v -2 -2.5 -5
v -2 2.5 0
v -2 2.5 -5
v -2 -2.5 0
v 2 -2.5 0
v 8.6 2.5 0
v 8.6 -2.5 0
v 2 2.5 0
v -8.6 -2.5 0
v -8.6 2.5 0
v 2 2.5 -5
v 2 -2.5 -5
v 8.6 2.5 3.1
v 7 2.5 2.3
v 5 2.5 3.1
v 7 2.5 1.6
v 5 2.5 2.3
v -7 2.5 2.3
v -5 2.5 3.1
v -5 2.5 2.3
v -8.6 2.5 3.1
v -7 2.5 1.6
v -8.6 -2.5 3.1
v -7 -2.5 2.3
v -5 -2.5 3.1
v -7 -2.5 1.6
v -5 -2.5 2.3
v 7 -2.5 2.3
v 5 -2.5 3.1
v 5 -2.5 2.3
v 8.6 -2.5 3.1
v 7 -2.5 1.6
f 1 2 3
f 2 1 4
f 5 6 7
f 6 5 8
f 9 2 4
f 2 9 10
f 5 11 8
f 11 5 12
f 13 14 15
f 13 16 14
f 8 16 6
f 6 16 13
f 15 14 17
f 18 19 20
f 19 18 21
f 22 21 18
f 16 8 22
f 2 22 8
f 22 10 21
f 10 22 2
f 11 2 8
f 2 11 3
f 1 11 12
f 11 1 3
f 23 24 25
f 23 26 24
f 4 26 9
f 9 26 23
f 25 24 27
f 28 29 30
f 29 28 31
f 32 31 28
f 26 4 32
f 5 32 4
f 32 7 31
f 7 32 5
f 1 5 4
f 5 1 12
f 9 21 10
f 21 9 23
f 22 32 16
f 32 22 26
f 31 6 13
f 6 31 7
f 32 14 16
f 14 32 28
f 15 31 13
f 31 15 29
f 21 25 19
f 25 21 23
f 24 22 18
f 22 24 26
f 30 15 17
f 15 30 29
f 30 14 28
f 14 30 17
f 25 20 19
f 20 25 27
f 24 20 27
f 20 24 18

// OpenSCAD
// --- Carrera Go LED Clip (Flach & Offen / Sichtfeld-Style) ---
// Alle Maße in Millimetern (mm). 
// Passt diese Werte an eure exakten Messungen an!

// --- PARAMETER ---
// 1. Der Pin für die Carrera-Schiene
slot_width = 4.0;      // Breite der Rille (Carrera Go ca. 3mm)
slot_depth = 5.0;      // Wie tief der Pin in die Rille ragt
clip_length = 5.0;     // Wie lang der Clip in Fahrtrichtung ist

// 2. Der LED-Streifen (Horizontal liegend)
strip_width_flat = 13.0; // Breite des flach liegenden Streifens (meist 10-12mm)
strip_thickness = 1.0;  // Dicke des Streifens inkl. Klebeband/Chips
// Diese Nase greift *nur* die alleräußerste Kante des Streifens!
snap_lip_width = 2;  // Wie weit die Nase nach innen ragt (sehr fein)

// 3. Stabilität & Toleranz
wall = 1.6;            // Wandstärke der Basisplatte (die auf der Fahrbahn liegt)
gap_clearance = 0.5;   // Minimaler Freiraum zum Streifen für Toleranz

// --- GENERATOR (Völlig neu konstruiert) ---
module led_clip_flat_sichtfeld() {
    union() {
        // 1. Der Pin (Steckt in der Bahn)
        // Zentriert um den Ursprung für Symmetrie
        translate([0, 0, -slot_depth/2])
            cube([slot_width, clip_length, slot_depth], center=true);
            
        // 2. Die flache Basis (Liegt auf der Fahrbahn auf)
        // Muss breiter sein als der Pin und der Streifen, um Stabilität zu geben
        translate([0, 0, wall/2])
            cube([strip_width_flat + 2*wall + 2*gap_clearance, clip_length, wall], center=true);
            
        // 3. Die sehr niedrigen Halterwände (knapp über Streifendicke)
        wall_height = strip_thickness + gap_clearance; // Etwas höher als Dicke für Halt
        
        // Rechte Wand
        translate([(strip_width_flat/2 + gap_clearance + wall/2), 0, wall + wall_height/2])
            cube([wall, clip_length, wall_height], center=true);
            
        // Linke Wand
        translate([-(strip_width_flat/2 + gap_clearance + wall/2), 0, wall + wall_height/2])
            cube([wall, clip_length, wall_height], center=true);
            
        // 4. Die ultra-feinen Halte-Nasen (Klick-Mechanismus oben)
        // Diese greifen nur die alleräußerste PCB-Kante!
        lip_thickness = 0.8;
        
        // Rechte Nase
        translate([(strip_width_flat/2 + gap_clearance - snap_lip_width/2), 0, wall + wall_height - lip_thickness/2])
            cube([snap_lip_width, clip_length, lip_thickness], center=true);
            
        // Linke Nase
        translate([-(strip_width_flat/2 + gap_clearance - snap_lip_width/2), 0, wall + wall_height - lip_thickness/2])
            cube([snap_lip_width, clip_length, lip_thickness], center=true);
    }
}

// Modell rendern
led_clip_flat_sichtfeld();
